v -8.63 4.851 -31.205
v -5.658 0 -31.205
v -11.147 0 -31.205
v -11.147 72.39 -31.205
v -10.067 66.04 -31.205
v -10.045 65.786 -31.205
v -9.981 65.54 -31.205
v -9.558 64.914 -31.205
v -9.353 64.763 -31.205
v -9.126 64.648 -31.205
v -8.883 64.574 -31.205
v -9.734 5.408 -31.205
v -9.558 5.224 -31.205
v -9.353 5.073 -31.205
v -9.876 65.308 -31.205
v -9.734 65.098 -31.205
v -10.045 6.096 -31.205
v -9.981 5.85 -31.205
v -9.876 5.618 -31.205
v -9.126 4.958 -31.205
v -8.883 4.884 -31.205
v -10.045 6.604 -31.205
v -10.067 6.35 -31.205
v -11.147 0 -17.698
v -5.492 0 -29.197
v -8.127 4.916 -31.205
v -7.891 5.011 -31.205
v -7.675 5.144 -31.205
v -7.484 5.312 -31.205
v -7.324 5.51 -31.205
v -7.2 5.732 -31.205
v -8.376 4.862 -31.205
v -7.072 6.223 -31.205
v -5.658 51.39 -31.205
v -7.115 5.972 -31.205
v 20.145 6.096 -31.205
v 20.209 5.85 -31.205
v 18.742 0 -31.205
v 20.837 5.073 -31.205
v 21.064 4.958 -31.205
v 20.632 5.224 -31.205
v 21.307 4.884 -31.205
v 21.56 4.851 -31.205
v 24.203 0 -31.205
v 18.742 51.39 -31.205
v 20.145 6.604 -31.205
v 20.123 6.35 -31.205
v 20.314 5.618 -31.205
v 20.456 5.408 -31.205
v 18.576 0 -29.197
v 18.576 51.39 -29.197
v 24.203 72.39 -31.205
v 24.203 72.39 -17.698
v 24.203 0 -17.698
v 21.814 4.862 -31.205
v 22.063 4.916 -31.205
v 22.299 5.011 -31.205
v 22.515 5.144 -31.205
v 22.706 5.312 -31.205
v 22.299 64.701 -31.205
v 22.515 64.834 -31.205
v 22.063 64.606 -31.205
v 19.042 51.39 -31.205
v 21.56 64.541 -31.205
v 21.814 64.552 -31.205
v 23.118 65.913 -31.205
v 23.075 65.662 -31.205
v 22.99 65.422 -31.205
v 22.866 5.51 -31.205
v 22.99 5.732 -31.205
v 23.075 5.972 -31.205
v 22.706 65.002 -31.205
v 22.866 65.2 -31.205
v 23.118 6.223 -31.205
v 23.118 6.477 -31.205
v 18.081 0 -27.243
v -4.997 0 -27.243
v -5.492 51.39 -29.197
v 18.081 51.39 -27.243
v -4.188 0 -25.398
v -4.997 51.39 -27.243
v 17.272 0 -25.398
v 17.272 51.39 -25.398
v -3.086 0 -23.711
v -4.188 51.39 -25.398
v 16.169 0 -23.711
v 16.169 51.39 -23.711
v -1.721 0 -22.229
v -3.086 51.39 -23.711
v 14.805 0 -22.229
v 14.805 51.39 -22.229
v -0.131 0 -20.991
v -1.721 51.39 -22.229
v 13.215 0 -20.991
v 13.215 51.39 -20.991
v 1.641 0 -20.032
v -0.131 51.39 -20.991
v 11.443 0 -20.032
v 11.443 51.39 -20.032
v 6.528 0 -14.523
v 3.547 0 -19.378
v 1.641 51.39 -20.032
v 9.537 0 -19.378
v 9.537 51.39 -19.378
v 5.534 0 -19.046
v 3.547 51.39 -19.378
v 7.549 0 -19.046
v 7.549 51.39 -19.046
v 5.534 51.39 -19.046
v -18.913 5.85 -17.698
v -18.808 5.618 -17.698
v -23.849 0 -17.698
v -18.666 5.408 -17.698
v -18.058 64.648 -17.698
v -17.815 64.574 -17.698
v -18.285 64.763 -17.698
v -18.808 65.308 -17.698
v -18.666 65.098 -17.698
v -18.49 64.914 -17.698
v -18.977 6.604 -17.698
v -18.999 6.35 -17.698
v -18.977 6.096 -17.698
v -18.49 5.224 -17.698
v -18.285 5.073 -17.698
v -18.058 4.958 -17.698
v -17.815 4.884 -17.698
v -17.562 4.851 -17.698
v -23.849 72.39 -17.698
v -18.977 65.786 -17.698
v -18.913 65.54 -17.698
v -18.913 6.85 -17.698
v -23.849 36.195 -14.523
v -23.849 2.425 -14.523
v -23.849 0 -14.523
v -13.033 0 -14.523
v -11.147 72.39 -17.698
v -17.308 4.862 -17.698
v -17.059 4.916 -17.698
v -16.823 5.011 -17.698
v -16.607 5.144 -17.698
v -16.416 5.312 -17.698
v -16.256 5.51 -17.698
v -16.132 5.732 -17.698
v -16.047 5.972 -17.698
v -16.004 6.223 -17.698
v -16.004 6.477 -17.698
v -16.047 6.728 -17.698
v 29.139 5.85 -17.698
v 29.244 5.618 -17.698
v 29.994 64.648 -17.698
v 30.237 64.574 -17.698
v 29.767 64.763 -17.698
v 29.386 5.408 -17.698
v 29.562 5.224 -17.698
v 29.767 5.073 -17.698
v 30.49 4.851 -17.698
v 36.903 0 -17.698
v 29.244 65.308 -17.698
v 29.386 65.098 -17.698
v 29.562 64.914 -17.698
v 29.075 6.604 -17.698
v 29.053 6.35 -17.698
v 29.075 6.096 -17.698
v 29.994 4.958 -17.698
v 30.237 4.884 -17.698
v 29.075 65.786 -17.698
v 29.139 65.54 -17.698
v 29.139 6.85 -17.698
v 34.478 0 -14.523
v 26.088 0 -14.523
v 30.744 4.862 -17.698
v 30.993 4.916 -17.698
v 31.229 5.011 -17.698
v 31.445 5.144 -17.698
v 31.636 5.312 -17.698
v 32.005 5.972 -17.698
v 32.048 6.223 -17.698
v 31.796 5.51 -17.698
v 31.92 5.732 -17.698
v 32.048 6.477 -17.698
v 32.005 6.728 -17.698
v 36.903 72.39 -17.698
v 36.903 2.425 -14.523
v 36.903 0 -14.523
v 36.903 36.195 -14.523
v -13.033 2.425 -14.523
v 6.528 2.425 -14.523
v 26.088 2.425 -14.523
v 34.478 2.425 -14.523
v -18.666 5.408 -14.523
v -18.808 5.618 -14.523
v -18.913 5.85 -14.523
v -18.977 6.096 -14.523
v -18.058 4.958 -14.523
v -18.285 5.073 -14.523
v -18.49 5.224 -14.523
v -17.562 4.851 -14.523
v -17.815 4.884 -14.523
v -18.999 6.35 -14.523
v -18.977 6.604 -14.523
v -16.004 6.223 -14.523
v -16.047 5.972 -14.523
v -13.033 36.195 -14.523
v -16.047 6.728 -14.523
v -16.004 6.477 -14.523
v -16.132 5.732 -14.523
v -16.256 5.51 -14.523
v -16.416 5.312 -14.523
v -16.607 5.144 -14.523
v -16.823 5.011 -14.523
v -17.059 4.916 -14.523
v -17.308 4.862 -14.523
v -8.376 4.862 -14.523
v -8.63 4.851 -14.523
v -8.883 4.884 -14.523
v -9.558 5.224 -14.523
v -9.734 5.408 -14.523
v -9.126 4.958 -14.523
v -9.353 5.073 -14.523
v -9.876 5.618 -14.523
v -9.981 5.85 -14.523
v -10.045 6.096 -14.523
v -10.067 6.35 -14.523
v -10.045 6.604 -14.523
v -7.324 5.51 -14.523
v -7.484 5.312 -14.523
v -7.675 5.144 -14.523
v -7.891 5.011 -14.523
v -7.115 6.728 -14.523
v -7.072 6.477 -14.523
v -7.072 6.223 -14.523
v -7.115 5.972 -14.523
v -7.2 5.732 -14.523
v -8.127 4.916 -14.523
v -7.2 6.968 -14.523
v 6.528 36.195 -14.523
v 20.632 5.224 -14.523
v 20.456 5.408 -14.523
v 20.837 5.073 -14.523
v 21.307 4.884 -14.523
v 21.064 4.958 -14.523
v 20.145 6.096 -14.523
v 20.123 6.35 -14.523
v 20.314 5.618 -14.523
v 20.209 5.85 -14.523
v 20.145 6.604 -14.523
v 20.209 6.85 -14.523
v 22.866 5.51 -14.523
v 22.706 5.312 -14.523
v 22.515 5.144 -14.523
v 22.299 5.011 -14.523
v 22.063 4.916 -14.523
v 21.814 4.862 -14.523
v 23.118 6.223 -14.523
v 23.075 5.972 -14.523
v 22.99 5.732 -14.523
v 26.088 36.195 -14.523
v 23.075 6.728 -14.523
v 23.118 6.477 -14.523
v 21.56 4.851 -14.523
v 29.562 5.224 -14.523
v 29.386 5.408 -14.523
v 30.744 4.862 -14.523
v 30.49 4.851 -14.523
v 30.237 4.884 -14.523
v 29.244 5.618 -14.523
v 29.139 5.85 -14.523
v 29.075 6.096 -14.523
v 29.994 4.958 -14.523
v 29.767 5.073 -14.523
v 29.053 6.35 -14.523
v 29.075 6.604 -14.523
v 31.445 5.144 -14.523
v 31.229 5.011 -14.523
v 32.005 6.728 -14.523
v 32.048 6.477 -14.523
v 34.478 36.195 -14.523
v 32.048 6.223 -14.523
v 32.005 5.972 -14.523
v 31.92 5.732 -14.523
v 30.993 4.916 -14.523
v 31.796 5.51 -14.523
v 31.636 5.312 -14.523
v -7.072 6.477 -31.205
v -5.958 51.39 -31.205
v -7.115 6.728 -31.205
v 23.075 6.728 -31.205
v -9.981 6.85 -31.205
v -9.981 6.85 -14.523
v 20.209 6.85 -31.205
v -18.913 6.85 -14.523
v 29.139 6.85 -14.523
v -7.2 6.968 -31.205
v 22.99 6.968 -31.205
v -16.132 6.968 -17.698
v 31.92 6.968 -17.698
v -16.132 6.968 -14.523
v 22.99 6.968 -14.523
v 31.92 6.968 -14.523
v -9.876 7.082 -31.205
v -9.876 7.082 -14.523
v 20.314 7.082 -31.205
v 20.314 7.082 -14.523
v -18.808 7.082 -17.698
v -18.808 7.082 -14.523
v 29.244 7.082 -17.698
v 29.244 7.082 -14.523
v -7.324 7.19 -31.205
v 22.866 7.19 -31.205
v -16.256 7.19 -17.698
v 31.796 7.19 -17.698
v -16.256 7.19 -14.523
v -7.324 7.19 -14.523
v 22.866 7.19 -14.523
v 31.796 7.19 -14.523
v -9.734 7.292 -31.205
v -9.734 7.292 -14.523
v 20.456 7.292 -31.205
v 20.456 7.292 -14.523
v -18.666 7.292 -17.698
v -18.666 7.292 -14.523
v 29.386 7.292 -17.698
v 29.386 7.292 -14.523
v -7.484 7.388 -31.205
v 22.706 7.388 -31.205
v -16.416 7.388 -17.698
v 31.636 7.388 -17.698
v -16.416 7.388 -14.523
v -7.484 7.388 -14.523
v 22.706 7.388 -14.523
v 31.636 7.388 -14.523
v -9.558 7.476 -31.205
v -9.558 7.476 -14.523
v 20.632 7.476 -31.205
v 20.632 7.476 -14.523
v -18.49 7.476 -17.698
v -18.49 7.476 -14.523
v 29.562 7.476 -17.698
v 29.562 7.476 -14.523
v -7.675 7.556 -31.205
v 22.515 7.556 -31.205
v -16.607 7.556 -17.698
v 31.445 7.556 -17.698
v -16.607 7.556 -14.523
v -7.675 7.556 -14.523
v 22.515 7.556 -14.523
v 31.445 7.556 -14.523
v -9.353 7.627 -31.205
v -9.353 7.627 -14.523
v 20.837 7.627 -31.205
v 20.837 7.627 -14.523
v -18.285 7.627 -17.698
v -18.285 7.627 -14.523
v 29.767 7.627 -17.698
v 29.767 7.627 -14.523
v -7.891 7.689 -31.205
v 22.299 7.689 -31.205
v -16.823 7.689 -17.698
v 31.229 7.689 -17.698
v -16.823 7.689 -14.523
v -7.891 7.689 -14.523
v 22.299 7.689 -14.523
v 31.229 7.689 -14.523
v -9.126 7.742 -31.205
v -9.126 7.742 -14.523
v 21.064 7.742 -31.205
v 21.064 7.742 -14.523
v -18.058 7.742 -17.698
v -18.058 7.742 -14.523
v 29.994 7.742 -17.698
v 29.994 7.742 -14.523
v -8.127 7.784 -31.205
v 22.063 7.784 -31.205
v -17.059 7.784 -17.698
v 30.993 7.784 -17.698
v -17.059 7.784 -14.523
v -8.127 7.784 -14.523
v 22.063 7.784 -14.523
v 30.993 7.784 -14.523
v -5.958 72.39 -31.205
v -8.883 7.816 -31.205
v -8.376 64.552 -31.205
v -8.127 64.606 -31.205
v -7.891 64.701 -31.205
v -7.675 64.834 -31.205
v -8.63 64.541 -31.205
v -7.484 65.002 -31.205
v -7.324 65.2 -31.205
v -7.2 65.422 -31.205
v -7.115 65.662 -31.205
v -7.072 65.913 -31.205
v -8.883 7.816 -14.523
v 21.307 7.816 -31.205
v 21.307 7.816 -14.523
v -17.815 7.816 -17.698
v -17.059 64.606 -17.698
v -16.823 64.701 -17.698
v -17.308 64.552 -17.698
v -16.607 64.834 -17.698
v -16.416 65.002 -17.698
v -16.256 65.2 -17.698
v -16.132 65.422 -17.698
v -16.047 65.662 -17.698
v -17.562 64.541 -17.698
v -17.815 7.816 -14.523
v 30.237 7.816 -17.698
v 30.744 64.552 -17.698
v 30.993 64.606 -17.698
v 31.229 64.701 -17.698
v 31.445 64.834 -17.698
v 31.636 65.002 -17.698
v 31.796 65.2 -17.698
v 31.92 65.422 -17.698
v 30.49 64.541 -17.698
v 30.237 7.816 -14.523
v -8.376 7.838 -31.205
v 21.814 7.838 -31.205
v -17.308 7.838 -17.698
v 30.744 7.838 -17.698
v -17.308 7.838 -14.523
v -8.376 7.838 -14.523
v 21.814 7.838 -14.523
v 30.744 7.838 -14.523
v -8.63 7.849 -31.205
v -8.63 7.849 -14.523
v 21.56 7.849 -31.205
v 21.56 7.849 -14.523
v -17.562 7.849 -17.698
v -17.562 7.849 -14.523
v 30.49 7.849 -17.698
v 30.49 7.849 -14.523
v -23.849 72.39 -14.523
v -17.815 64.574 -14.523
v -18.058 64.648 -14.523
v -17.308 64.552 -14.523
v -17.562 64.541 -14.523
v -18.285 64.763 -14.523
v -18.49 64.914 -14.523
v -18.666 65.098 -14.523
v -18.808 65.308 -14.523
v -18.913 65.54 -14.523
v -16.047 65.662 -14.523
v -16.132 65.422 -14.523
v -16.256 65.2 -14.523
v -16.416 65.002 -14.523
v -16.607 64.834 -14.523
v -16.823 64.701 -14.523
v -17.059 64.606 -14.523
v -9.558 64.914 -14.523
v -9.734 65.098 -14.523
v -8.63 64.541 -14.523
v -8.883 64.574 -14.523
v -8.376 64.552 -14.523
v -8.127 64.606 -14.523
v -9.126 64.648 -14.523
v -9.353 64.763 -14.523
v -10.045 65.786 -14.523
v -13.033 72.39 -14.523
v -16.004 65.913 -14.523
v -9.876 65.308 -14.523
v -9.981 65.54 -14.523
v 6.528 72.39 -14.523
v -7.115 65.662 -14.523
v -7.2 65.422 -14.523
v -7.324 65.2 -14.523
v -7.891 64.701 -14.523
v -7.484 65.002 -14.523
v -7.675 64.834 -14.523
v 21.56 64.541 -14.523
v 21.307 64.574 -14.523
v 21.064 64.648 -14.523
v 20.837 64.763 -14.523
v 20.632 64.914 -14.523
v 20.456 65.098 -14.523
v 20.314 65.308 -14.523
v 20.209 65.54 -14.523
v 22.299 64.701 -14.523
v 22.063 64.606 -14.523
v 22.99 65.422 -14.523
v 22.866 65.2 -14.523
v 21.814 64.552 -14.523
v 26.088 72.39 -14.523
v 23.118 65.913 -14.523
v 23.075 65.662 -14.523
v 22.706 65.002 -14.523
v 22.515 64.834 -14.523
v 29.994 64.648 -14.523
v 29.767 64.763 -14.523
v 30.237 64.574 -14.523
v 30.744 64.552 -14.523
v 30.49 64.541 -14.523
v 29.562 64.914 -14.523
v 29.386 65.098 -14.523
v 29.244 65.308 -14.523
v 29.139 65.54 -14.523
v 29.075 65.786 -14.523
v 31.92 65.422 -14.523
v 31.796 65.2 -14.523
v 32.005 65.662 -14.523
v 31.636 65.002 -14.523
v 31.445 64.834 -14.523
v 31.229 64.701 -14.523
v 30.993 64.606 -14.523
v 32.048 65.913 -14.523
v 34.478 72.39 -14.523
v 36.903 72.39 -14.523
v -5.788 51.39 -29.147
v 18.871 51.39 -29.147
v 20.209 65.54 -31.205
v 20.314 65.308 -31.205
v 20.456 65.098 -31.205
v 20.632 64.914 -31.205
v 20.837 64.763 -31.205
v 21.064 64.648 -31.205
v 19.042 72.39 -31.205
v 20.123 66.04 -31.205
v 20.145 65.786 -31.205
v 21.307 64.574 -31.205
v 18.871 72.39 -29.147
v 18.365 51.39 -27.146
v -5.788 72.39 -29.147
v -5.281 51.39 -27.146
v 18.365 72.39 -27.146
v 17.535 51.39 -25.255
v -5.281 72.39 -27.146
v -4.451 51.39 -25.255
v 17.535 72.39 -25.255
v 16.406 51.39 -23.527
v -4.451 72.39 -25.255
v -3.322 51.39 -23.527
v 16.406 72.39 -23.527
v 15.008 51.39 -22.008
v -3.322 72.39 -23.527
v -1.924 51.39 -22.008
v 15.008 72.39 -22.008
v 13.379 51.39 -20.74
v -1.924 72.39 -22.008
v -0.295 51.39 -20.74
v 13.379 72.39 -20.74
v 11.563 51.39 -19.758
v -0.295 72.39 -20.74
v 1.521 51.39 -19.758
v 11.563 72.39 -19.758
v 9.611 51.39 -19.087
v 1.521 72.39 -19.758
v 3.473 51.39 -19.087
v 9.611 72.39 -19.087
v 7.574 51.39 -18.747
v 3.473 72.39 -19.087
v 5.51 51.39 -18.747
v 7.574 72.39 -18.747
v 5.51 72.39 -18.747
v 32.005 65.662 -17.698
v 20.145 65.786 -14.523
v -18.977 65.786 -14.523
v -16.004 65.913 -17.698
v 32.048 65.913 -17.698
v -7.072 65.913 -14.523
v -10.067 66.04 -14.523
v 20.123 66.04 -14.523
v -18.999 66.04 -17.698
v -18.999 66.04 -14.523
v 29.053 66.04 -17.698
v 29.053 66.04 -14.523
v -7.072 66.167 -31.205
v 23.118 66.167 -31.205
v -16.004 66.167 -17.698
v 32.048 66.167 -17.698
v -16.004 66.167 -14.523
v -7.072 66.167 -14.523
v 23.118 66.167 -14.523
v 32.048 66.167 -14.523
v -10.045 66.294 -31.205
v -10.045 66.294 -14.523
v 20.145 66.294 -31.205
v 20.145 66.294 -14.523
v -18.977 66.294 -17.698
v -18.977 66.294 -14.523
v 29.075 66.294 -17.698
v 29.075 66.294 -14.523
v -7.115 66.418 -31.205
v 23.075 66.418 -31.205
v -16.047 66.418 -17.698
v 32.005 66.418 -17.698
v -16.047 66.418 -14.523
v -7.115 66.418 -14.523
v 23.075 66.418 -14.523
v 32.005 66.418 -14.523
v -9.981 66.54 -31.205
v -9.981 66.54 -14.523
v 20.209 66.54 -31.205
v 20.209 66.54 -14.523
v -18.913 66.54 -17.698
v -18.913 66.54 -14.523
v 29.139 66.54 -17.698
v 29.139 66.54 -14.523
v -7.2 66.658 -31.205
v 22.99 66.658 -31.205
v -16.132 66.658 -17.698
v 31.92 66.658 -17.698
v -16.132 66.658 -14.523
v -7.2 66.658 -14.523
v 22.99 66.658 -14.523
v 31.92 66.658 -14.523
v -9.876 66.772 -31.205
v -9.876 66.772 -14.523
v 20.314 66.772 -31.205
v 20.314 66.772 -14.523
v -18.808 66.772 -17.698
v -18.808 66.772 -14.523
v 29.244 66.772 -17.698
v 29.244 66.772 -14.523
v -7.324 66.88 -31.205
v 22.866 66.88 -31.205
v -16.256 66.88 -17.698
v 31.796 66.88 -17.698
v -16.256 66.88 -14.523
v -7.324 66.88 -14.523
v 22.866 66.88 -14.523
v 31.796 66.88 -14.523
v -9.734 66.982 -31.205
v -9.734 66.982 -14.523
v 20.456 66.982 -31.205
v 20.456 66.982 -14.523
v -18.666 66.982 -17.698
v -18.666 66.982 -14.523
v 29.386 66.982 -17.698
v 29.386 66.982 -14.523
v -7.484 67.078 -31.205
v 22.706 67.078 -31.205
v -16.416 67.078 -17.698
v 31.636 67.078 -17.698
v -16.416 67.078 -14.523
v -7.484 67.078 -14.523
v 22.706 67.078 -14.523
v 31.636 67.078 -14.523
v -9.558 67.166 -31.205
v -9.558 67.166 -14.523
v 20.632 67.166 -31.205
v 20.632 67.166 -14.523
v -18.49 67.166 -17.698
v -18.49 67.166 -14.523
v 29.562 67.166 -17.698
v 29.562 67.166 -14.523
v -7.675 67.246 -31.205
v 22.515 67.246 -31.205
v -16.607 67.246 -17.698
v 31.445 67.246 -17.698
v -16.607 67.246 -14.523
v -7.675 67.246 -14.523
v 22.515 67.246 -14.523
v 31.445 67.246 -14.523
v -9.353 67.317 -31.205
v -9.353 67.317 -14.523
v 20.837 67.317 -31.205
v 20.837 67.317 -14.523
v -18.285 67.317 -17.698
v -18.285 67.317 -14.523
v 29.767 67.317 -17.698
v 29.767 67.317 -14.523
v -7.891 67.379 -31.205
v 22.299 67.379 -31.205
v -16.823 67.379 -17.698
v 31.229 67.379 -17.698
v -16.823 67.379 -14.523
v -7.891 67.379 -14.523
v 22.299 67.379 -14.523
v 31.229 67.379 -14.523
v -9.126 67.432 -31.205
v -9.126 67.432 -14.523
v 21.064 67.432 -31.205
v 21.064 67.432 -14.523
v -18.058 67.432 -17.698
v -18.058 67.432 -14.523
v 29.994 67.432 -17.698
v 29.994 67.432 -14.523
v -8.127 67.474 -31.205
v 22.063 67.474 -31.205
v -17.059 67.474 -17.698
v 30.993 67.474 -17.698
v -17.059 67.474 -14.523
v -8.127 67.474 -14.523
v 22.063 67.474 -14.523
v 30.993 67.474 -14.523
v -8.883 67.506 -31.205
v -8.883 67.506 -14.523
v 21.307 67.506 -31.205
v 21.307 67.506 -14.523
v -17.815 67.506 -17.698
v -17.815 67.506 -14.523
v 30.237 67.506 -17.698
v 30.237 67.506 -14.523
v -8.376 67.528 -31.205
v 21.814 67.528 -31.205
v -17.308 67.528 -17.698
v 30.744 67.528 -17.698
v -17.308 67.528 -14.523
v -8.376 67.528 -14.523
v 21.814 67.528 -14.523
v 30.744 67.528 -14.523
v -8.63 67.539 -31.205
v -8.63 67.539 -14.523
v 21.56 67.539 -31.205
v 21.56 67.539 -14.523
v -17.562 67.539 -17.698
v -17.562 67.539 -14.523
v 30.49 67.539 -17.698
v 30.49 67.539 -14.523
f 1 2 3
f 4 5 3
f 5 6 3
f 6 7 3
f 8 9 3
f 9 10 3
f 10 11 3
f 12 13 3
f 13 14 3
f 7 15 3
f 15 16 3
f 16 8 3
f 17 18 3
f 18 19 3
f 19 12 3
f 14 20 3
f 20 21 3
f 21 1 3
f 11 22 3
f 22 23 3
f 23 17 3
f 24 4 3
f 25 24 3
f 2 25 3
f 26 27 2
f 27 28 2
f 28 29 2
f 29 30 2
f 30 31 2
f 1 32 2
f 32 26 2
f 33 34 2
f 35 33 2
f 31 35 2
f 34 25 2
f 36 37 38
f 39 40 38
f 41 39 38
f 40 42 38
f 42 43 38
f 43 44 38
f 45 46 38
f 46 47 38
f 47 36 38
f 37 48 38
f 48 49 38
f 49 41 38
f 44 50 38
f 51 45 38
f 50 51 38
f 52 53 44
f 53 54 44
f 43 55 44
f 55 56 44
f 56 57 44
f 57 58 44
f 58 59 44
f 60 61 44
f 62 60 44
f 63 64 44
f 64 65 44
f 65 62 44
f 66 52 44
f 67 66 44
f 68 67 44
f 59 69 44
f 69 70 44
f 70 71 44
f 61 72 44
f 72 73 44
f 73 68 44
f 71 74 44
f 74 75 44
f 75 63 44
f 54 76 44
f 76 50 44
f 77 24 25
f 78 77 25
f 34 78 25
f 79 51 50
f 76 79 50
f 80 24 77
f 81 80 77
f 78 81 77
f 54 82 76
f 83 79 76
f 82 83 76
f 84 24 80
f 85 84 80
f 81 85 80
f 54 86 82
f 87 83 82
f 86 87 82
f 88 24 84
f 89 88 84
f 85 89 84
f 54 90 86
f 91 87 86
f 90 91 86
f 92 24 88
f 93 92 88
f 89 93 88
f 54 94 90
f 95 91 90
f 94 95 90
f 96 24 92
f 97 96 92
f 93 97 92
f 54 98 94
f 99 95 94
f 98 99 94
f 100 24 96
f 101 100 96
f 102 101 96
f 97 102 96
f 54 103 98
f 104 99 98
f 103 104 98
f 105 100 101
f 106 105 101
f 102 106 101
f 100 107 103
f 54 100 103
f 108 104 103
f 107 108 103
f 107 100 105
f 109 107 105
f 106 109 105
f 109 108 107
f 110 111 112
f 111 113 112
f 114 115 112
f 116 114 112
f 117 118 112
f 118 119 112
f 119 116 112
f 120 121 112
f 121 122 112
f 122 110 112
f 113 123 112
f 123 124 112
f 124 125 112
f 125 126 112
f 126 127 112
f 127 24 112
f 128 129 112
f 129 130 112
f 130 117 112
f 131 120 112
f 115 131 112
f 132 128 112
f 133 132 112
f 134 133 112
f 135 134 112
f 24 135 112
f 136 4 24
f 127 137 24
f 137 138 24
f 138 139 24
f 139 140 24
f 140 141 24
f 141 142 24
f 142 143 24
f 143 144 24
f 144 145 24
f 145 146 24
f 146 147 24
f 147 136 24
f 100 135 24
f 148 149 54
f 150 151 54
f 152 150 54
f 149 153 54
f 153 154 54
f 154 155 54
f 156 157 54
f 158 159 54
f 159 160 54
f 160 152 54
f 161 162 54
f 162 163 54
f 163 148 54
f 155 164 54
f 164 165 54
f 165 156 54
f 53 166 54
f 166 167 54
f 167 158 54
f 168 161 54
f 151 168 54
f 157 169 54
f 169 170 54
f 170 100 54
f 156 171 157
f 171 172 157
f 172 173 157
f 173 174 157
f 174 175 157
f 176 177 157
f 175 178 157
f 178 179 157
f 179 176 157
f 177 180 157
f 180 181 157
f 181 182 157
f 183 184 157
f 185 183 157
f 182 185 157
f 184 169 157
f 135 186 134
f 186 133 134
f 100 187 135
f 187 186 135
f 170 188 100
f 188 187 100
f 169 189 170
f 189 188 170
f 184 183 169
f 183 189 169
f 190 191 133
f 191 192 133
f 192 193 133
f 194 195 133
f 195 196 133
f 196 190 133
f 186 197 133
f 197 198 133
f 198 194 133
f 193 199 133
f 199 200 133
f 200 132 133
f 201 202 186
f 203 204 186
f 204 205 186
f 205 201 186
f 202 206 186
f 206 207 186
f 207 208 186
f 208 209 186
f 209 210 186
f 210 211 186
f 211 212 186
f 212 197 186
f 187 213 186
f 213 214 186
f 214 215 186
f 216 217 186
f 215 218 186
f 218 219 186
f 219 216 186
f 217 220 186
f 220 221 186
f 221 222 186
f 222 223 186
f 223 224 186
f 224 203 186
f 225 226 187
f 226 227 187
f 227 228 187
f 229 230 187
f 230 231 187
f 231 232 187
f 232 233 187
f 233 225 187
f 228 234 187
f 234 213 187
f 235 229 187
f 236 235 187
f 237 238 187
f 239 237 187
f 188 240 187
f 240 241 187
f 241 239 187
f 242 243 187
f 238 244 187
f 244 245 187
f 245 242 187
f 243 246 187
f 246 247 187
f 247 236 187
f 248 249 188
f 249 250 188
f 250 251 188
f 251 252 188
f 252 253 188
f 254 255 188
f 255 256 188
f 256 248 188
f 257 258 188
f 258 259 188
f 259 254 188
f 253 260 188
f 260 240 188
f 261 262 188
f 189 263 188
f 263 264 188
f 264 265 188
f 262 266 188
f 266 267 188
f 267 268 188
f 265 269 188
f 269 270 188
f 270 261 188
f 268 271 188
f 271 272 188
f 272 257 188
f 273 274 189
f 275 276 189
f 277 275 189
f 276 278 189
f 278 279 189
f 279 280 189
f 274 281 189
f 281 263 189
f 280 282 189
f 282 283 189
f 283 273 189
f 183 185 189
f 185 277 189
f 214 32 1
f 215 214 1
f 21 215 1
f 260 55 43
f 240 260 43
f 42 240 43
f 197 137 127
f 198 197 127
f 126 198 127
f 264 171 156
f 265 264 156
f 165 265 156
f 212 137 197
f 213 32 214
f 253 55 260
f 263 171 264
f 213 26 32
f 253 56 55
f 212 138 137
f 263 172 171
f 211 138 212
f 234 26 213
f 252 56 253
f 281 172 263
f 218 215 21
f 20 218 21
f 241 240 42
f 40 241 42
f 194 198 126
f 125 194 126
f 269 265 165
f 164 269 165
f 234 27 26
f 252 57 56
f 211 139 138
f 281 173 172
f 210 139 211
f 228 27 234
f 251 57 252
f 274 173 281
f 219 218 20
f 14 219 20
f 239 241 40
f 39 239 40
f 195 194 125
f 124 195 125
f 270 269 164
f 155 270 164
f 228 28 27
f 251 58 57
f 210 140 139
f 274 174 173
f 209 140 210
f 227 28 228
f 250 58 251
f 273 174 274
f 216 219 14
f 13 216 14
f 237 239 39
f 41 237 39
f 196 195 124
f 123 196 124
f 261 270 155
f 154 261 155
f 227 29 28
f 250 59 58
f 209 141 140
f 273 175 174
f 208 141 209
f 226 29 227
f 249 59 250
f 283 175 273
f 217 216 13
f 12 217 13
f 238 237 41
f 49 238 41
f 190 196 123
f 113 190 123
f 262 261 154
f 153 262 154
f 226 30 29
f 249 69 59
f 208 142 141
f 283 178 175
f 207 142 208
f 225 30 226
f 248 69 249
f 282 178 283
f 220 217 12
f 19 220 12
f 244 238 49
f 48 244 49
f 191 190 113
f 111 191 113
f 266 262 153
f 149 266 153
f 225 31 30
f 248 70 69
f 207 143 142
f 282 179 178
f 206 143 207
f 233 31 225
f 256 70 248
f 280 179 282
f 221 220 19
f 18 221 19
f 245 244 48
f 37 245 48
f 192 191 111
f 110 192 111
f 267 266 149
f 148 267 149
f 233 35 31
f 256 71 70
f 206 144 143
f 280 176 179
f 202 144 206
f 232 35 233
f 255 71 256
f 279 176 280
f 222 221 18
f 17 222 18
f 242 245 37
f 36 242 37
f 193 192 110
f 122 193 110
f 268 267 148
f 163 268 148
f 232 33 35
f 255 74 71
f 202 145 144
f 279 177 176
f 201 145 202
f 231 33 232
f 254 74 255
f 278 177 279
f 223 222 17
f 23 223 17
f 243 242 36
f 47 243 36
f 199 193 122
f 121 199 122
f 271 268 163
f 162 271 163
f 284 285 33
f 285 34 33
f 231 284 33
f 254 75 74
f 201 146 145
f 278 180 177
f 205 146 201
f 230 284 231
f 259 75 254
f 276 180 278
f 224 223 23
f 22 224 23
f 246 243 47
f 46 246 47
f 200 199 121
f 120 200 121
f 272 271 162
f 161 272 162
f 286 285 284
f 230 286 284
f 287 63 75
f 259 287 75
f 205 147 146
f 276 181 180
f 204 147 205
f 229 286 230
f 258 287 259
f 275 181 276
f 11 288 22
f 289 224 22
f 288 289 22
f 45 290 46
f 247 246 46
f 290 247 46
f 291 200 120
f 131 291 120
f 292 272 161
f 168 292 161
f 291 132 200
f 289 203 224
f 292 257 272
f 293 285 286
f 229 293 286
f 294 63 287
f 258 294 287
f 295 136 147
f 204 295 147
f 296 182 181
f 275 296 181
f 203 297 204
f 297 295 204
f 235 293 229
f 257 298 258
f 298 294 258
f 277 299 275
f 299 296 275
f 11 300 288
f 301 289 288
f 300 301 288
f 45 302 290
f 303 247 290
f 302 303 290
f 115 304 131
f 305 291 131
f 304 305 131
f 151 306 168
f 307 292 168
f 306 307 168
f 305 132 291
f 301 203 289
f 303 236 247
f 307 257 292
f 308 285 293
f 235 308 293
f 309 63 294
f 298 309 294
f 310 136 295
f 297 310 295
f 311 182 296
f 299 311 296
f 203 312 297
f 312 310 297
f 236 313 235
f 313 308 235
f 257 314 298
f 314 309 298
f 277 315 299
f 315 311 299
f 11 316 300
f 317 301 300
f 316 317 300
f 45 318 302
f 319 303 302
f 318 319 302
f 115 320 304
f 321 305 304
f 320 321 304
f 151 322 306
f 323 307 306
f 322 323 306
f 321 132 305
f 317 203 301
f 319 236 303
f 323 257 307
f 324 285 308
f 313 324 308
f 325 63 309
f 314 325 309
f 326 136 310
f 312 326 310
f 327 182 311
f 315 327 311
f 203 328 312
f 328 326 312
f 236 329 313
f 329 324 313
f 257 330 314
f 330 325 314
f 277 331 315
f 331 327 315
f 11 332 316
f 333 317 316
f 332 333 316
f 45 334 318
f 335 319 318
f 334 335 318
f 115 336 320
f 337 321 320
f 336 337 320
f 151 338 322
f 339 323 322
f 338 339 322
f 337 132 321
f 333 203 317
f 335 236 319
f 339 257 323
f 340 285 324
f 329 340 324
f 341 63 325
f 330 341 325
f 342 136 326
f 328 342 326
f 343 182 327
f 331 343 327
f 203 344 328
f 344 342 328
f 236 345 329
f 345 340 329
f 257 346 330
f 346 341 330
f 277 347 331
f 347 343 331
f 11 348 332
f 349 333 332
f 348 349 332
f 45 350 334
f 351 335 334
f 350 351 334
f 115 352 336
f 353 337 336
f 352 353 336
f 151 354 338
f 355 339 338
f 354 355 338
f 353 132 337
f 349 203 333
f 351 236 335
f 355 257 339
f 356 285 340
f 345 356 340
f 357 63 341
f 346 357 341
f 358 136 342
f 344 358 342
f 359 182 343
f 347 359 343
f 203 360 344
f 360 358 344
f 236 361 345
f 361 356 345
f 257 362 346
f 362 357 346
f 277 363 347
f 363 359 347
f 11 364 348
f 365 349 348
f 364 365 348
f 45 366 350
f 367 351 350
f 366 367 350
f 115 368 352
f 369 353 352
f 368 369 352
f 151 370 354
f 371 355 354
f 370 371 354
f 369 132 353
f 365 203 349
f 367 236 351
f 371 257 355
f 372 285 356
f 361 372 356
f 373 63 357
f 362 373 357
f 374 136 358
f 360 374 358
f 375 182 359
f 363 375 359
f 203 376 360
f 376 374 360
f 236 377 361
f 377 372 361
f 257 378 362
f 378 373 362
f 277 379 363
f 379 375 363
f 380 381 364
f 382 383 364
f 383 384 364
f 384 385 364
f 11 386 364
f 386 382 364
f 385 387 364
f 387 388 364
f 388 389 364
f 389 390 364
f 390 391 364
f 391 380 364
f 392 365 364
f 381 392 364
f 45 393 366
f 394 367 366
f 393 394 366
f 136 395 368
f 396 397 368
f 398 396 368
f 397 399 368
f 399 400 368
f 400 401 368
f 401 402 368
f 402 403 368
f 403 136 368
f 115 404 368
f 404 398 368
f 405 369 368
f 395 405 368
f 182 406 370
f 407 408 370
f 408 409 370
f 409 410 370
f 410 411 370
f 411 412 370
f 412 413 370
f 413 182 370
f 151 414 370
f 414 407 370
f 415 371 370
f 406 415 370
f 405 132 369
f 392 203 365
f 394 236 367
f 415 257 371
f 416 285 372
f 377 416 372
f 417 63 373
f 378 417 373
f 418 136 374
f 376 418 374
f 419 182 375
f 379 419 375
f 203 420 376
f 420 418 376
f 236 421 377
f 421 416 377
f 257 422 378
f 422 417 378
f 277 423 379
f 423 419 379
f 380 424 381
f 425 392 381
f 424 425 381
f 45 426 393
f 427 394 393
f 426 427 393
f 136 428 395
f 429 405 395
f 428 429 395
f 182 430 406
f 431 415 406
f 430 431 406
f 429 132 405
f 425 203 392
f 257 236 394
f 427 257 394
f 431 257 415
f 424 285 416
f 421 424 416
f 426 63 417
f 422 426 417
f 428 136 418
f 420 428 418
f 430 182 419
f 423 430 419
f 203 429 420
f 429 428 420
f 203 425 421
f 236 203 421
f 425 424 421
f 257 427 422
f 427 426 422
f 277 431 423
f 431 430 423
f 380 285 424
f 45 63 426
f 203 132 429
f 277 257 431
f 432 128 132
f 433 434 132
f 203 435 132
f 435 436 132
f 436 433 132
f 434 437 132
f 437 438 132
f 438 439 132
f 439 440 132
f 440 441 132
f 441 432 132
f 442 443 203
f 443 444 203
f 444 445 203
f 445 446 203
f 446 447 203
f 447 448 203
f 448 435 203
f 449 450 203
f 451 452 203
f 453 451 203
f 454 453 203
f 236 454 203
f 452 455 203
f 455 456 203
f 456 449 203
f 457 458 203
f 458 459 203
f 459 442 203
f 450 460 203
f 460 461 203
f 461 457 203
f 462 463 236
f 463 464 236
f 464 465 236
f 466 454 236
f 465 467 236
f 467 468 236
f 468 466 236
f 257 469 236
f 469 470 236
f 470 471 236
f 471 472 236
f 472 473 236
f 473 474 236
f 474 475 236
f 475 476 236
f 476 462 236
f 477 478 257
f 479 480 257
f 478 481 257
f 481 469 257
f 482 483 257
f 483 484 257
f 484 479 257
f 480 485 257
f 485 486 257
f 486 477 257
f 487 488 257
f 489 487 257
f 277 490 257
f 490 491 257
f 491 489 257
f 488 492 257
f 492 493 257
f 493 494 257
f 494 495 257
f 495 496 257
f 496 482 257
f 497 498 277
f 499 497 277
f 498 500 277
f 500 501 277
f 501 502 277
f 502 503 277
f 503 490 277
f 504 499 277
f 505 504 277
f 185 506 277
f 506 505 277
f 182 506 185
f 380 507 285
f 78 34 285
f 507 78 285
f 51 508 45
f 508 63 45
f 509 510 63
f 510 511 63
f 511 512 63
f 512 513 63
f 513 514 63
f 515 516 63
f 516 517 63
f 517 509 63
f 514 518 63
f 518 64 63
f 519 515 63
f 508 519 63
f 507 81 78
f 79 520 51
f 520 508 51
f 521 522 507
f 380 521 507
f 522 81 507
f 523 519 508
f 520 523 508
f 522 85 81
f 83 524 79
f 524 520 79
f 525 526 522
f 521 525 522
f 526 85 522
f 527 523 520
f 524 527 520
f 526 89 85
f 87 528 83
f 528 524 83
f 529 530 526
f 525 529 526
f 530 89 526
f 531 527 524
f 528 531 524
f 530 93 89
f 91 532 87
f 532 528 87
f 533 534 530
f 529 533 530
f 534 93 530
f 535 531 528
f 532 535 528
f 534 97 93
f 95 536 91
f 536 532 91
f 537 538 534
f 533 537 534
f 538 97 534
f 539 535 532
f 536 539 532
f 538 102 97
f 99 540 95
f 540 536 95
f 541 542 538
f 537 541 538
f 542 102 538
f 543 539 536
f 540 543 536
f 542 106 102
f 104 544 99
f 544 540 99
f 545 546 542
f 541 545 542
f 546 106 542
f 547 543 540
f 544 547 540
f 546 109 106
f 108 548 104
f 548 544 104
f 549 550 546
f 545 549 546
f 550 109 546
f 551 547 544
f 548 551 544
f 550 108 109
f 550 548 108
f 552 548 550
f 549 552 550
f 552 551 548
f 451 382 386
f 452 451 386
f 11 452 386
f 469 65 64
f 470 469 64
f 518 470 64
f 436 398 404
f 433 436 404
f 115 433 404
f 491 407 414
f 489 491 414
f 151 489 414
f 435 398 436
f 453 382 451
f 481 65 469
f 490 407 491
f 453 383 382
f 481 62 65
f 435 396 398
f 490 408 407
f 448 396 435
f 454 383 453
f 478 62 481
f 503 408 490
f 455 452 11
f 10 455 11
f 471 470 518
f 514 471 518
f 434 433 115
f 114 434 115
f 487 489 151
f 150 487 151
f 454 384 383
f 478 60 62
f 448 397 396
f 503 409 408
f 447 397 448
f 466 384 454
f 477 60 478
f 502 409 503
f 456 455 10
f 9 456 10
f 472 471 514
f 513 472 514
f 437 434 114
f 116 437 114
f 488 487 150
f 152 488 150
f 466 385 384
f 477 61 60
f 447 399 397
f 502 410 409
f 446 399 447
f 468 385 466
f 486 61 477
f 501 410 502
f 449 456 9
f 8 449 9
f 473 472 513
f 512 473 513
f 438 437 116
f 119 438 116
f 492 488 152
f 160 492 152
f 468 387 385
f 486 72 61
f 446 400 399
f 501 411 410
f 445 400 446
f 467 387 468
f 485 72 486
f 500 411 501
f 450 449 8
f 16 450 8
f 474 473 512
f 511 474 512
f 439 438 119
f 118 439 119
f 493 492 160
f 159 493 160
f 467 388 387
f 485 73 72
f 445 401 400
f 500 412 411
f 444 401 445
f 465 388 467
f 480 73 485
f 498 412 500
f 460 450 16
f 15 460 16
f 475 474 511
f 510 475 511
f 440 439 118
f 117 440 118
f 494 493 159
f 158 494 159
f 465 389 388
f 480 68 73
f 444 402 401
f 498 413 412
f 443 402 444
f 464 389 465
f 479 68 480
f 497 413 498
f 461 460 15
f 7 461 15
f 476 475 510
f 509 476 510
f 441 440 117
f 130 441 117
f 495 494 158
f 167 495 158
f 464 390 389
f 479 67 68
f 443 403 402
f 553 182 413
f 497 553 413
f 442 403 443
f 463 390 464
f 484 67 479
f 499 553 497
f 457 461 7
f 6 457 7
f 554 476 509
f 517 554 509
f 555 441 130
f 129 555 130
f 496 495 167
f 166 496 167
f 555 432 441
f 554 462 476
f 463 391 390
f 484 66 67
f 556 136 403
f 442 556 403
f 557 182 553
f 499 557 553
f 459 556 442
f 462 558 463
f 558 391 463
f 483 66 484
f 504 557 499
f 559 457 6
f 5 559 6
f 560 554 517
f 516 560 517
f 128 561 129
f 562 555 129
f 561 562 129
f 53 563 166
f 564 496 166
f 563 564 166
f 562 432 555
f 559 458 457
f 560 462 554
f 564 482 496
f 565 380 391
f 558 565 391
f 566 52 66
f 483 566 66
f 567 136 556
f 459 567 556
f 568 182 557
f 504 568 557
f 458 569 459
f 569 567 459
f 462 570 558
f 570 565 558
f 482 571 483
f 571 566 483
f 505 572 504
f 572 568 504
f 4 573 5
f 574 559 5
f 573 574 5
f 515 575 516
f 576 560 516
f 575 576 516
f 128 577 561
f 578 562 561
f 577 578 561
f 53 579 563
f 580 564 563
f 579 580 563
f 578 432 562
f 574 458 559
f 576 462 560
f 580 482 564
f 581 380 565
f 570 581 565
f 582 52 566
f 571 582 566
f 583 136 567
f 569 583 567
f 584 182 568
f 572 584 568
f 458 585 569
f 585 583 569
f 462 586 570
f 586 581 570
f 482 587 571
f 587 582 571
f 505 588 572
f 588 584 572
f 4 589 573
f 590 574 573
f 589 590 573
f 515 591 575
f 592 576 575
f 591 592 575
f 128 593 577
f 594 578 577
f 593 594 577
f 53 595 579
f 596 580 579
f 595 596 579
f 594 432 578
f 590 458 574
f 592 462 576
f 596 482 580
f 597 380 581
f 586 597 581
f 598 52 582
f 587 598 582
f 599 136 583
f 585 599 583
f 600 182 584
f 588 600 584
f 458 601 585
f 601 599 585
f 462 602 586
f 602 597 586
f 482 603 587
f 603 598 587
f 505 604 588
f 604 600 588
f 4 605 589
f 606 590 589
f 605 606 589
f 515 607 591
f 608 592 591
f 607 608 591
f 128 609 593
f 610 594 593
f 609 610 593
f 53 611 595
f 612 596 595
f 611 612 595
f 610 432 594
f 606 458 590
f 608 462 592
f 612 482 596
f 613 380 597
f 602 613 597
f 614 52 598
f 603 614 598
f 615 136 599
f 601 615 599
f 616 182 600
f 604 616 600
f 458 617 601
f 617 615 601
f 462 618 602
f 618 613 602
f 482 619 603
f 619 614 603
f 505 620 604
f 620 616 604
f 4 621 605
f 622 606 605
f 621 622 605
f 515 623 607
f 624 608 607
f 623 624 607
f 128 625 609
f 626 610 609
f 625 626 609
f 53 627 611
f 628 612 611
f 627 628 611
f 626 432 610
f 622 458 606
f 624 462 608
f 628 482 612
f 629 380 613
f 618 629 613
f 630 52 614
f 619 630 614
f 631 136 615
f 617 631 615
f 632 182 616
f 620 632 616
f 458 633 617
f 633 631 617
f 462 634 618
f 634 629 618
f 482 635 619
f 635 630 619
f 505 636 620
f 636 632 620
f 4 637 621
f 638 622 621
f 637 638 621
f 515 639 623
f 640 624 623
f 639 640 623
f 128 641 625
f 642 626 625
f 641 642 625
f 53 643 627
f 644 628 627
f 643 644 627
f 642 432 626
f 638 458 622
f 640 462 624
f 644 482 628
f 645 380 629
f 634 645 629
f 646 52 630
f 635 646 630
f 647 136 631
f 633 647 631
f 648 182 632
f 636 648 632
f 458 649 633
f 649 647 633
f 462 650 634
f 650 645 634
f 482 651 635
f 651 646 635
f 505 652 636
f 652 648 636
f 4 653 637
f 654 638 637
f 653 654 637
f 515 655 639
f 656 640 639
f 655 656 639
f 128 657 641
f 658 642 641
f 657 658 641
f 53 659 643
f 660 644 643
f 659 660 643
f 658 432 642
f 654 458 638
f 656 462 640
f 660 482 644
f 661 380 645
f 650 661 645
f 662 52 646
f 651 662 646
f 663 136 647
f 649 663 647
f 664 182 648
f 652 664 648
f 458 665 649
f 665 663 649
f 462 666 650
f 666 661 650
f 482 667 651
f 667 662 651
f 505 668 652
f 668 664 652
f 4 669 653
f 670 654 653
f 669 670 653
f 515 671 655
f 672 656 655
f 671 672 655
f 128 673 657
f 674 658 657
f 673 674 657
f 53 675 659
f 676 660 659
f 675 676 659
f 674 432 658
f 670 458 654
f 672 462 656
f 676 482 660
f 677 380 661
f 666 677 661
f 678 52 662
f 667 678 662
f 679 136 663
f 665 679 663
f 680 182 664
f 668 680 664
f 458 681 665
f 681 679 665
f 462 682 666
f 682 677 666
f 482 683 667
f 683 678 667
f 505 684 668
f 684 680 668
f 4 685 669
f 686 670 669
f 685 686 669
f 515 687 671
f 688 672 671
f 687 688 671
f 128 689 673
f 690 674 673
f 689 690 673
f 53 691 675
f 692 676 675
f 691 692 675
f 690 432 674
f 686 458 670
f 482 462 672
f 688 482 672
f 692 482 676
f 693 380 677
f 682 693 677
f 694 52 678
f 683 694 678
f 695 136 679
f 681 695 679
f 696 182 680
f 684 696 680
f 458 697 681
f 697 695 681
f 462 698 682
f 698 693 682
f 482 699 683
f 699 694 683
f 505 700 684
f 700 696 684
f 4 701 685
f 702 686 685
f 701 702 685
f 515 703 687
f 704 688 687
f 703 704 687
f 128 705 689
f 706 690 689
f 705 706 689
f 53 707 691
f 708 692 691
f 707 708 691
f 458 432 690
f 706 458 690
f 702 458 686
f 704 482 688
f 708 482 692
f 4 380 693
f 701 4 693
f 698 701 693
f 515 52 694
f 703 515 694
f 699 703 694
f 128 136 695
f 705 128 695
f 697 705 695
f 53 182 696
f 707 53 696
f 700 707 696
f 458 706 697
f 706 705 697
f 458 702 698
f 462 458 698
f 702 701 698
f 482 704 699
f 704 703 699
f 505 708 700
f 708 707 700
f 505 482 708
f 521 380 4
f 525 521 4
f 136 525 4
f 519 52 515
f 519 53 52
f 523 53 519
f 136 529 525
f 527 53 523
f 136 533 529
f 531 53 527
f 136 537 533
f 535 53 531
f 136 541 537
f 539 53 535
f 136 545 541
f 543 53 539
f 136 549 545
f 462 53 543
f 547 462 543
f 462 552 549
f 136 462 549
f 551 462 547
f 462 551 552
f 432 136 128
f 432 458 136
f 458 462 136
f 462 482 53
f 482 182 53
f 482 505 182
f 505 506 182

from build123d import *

# Parameters (mm, degrees)
BOSS_EXTRUDE2_DEPTH       = 72.39
BOSS_EXTRUDE3_DEPTH       = 51.39
F_3_0MM_DOWEL_HOLE1_D     = 3
F_3_0MM_DOWEL_HOLE1_DEPTH = 10
F_3_0MM_DOWEL_HOLE1_TIP   = 0.901290929
F_3_0MM_DOWEL_HOLE2_D     = 3
F_3_0MM_DOWEL_HOLE2_DEPTH = 20
F_3_0MM_DOWEL_HOLE2_TIP   = 0.901290929


with BuildPart() as part:
    # Sketch1 → Boss-Extrude2 (new body)
    with BuildSketch(Plane(origin=(0, 0, 0), x_dir=(1, 0, 0), z_dir=(0, 1, 0))):
        with BuildLine():
            Line((-11.1466884, 17.698170271), (-23.8485284, 17.698170271))
            Line((-23.8485284, 17.698170271), (-23.8485284, 14.523170271))
            Line((-23.8485284, 14.523170271), (36.9033116, 14.523170271))
            Line((36.9033116, 14.523170271), (36.9033116, 17.698170271))
            Line((36.9033116, 17.698170271), (24.2033116, 17.698170271))
            Line((24.2033116, 17.698170271), (24.2033116, 31.204775661))
            Line((24.2033116, 31.204775661), (19.041964554, 31.204775661))
            ThreePointArc((19.041964554, 31.204775661), (6.541964554, 18.704775661), (-5.958035446, 31.204775661))
            Line((-5.958035446, 31.204775661), (-11.1466884, 31.204775661))
            Line((-11.1466884, 31.204775661), (-11.1466884, 17.698170271))
        make_face()
    extrude(amount=BOSS_EXTRUDE2_DEPTH)

    # Sketch1<16> → Boss-Extrude3 (add)
    with BuildSketch(Plane(origin=(0, 0, 0), x_dir=(1, 0, 0), z_dir=(0, 1, 0))):
        with BuildLine():
            Line((-5.958035446, 31.204775661), (-5.658035446, 31.204775661))
            ThreePointArc((-5.658035446, 31.204775661), (6.541964554, 19.004775661), (18.741964554, 31.204775661))
            Line((18.741964554, 31.204775661), (19.041964554, 31.204775661))
            ThreePointArc((19.041964554, 31.204775661), (6.541964554, 18.704775661), (-5.958035446, 31.204775661))
        make_face()
    extrude(amount=BOSS_EXTRUDE3_DEPTH)

    # Ø3.0mm Dowel Hole1
    with Locations(Plane(origin=(0, 0, -17.698170271), x_dir=(-1, 0, 0), z_dir=(0, 0, -1))):
        with Locations((-30.5533116, 66.04), (-30.5533116, 6.35), (17.4985284, 6.35), (17.4985284, 66.04)):
            Hole(F_3_0MM_DOWEL_HOLE1_D / 2, depth=F_3_0MM_DOWEL_HOLE1_DEPTH)
            with Locations((0, 0, -(F_3_0MM_DOWEL_HOLE1_DEPTH + F_3_0MM_DOWEL_HOLE1_TIP / 2))):  # 118° drill point
                Cone(0, F_3_0MM_DOWEL_HOLE1_D / 2, F_3_0MM_DOWEL_HOLE1_TIP, mode=Mode.SUBTRACT)

    # Ø3.0mm Dowel Hole2
    with Locations(Plane(origin=(0, 0, -31.204775661), x_dir=(-1, 0, 0), z_dir=(0, 0, -1))):
        with Locations((-21.6233116, 66.04), (-21.6233116, 6.35), (8.5666884, 6.35), (8.5666884, 66.04)):
            Hole(F_3_0MM_DOWEL_HOLE2_D / 2, depth=F_3_0MM_DOWEL_HOLE2_DEPTH)
            with Locations((0, 0, -(F_3_0MM_DOWEL_HOLE2_DEPTH + F_3_0MM_DOWEL_HOLE2_TIP / 2))):  # 118° drill point
                Cone(0, F_3_0MM_DOWEL_HOLE2_D / 2, F_3_0MM_DOWEL_HOLE2_TIP, mode=Mode.SUBTRACT)


solid = part.part
